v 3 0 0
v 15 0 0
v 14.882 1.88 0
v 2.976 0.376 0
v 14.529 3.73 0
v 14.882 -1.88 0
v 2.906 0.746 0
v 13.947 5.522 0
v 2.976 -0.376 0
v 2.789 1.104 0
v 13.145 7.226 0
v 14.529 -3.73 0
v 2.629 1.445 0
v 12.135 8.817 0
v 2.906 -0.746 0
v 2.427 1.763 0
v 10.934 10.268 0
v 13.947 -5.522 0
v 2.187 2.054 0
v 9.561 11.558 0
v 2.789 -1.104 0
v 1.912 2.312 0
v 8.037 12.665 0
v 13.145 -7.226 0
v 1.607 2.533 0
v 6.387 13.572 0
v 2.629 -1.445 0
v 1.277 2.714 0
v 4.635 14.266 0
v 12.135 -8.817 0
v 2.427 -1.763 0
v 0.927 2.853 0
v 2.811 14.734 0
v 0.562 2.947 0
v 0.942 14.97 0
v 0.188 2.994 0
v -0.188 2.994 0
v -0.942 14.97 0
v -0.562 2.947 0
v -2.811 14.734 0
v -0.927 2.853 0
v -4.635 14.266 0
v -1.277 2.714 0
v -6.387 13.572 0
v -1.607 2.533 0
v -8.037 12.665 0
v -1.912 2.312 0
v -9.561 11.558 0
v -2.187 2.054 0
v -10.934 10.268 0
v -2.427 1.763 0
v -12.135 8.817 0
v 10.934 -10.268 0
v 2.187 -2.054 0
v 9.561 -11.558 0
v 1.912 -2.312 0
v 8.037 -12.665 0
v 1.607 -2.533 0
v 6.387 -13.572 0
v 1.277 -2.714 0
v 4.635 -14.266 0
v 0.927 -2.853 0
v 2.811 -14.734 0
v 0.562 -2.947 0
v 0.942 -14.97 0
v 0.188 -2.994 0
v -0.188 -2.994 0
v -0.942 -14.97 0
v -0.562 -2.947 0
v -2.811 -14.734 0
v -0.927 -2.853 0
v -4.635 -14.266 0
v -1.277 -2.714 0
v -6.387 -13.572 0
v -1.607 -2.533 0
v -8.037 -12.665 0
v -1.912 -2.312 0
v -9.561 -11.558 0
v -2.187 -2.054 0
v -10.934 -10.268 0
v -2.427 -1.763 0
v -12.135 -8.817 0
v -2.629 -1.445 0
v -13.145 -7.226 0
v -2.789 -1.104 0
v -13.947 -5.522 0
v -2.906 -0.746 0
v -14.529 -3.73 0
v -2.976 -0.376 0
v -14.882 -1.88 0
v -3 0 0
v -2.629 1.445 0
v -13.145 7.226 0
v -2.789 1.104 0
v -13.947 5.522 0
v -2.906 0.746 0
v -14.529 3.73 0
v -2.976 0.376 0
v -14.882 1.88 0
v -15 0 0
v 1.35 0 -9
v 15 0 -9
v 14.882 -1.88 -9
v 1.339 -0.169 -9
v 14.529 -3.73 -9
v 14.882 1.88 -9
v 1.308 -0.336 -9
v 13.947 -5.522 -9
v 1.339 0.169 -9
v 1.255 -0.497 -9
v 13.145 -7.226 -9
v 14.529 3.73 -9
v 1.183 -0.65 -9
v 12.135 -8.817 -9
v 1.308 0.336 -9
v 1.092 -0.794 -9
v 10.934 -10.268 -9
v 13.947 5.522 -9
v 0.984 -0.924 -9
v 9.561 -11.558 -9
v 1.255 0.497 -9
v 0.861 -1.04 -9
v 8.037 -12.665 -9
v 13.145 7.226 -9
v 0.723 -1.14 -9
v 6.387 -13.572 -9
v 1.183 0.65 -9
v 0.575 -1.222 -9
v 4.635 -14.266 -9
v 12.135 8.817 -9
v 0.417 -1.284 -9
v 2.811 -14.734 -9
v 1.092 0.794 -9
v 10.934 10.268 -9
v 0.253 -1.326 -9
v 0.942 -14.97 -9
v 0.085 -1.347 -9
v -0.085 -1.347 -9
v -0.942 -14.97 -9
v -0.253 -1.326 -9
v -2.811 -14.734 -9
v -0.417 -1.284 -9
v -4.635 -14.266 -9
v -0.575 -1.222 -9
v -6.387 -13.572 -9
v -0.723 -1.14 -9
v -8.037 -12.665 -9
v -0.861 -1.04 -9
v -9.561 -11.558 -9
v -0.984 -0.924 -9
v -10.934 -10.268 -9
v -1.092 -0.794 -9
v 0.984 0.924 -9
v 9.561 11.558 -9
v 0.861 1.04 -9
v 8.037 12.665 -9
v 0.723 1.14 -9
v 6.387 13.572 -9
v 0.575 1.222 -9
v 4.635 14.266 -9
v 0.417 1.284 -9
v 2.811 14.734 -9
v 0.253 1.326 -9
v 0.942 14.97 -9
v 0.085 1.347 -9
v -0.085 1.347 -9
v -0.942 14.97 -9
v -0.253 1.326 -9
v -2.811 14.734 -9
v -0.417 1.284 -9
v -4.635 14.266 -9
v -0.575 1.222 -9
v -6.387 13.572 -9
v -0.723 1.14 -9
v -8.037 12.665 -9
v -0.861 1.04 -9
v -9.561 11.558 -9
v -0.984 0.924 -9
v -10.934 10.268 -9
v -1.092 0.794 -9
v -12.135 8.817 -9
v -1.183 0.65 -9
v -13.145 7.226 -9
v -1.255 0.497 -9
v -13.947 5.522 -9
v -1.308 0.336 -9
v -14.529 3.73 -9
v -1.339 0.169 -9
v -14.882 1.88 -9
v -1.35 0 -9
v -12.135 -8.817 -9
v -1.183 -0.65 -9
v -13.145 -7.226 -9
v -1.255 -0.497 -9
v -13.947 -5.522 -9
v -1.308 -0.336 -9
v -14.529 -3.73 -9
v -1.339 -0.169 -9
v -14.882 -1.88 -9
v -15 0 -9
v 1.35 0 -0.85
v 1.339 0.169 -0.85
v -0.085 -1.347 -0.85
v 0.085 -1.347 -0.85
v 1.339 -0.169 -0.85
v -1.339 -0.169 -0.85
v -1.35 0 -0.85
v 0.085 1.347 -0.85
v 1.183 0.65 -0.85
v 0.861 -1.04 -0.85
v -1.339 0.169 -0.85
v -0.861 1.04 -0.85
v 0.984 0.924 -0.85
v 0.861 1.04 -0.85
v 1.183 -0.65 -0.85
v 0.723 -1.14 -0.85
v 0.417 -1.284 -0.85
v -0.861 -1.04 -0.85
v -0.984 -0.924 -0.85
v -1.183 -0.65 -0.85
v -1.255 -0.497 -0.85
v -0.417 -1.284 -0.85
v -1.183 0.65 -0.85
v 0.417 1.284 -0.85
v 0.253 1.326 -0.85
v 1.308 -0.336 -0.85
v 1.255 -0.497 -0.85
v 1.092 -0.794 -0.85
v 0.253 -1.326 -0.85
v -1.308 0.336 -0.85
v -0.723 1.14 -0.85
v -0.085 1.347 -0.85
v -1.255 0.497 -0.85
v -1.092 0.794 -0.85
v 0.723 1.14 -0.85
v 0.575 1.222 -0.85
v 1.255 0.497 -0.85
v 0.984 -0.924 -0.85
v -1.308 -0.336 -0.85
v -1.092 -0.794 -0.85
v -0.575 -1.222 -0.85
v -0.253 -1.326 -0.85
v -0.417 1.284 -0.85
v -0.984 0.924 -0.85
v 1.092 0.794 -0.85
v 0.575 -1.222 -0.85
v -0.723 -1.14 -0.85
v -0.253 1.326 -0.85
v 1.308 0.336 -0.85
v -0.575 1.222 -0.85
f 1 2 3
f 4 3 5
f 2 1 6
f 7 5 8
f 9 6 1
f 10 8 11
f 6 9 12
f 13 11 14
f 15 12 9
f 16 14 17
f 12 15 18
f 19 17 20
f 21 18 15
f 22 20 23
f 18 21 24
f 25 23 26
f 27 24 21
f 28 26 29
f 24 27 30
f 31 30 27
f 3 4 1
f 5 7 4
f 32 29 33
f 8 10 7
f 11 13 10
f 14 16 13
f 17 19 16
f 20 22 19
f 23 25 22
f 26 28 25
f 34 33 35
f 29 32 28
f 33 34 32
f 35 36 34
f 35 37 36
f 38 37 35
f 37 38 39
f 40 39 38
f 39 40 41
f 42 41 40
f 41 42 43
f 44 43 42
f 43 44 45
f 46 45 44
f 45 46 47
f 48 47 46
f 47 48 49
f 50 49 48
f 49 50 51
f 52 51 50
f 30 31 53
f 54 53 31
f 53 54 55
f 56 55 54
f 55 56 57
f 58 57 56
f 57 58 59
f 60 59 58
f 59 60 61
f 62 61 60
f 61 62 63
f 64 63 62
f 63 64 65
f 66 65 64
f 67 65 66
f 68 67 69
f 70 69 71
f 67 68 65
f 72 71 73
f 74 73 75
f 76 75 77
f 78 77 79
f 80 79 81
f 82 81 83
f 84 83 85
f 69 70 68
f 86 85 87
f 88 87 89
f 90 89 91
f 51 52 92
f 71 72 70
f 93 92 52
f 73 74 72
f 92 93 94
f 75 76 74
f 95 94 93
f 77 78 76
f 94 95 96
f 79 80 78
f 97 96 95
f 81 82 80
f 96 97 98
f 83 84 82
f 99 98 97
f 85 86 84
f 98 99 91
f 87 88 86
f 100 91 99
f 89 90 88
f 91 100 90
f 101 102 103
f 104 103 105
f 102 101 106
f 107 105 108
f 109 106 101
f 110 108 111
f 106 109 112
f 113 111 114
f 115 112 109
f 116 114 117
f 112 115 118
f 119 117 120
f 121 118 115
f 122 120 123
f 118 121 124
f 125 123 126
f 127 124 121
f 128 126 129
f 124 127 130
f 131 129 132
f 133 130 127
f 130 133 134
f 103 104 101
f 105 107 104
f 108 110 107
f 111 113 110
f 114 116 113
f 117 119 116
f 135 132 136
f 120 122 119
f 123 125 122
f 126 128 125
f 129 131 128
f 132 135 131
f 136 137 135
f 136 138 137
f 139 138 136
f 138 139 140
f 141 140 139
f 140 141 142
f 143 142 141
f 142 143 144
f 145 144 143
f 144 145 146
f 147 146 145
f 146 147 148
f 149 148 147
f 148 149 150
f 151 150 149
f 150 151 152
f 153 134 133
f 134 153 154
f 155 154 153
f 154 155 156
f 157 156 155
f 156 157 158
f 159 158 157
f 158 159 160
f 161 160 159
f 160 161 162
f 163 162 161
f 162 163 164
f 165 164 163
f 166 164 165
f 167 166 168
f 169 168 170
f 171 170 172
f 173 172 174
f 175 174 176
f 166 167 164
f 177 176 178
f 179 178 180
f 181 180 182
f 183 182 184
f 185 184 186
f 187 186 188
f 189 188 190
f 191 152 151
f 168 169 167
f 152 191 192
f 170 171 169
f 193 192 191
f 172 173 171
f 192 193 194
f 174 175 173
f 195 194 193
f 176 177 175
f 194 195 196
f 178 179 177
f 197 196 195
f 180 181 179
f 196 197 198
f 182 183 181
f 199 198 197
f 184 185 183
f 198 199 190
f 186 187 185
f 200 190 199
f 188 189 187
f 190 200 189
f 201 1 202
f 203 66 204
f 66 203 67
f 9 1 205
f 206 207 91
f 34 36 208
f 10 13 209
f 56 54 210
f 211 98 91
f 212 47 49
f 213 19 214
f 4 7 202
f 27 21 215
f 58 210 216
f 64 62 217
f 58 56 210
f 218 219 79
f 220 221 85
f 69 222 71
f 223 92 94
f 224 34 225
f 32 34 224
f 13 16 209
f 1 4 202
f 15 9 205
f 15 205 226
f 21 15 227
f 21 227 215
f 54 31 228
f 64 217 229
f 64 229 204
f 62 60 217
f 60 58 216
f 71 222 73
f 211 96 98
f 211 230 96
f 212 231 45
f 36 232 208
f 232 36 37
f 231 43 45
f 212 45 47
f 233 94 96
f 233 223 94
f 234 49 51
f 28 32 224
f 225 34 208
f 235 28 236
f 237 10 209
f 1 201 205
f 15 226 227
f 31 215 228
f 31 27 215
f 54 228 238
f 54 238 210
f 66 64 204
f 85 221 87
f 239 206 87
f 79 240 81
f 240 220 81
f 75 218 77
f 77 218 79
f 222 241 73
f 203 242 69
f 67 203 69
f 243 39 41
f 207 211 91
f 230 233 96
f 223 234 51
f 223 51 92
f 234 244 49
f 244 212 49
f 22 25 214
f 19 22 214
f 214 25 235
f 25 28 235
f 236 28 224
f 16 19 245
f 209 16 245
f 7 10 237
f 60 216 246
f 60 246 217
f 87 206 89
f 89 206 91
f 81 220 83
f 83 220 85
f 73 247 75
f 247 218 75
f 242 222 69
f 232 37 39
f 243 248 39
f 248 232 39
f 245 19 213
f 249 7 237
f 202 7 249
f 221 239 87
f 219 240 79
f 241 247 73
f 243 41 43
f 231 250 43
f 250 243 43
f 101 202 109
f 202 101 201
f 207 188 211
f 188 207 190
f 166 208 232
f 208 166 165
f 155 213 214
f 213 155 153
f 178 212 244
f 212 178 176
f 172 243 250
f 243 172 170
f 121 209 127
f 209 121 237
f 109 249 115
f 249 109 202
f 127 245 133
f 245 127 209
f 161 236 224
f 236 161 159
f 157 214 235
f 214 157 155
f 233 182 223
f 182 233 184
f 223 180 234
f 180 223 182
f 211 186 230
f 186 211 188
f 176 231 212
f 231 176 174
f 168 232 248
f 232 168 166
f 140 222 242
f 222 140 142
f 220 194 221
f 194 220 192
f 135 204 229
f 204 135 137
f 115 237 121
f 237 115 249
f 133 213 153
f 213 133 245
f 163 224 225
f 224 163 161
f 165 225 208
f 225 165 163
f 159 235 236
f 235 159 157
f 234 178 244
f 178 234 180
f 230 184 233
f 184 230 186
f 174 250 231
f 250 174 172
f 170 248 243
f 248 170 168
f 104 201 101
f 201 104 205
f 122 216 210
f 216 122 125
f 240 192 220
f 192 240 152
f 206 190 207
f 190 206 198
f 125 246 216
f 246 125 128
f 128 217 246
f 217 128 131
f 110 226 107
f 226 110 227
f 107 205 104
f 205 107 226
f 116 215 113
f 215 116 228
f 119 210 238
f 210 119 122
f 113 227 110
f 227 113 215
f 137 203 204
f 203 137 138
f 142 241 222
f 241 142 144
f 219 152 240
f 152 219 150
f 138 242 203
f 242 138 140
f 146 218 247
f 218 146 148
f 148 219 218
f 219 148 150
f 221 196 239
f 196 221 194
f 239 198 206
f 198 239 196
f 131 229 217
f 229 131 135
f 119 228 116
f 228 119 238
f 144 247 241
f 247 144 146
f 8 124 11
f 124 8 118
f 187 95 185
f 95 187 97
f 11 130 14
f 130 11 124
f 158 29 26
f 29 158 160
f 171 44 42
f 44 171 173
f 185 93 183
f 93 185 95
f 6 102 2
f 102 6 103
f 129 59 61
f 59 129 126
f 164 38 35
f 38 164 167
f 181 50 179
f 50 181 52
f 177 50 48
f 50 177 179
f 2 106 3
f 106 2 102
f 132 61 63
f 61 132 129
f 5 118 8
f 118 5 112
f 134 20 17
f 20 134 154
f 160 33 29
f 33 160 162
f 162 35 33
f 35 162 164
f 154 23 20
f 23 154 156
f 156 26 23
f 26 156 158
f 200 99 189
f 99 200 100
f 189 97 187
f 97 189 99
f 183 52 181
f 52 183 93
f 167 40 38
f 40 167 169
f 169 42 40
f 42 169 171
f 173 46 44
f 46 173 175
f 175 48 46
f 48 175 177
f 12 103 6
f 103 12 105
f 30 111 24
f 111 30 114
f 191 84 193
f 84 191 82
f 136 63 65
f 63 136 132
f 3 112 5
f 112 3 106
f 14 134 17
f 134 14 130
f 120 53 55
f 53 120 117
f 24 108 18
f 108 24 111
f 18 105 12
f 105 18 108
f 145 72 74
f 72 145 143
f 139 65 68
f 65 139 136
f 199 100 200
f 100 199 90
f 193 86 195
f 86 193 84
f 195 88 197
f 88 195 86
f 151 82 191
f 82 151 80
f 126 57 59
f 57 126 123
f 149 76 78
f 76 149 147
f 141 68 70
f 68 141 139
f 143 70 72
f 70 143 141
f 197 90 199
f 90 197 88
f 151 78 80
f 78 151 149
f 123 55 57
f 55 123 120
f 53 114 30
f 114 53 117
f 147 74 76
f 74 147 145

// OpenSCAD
$fn = 50;


difference() {
	union() {
		translate(v = [0, 0, -9.0000000000]) {
			cylinder(h = 9, r = 15.0000000000);
		}
	}
	union() {
		translate(v = [0, 0, 0]) {
			rotate(a = [0, 0, 0]) {
				difference() {
					union() {
						translate(v = [0, 0, -9.0000000000]) {
							cylinder(h = 9, r = 1.0000000000);
						}
						translate(v = [0, 0, -0.8500000000]) {
							cylinder(h = 0.8500000000, r1 = 1.3500000000, r2 = 3.0000000000);
						}
						translate(v = [0, 0, -9.0000000000]) {
							cylinder(h = 9, r = 1.3500000000);
						}
						translate(v = [0, 0, -9.0000000000]) {
							cylinder(h = 9, r = 1.0000000000);
						}
					}
					union();
				}
			}
		}
	}
}
